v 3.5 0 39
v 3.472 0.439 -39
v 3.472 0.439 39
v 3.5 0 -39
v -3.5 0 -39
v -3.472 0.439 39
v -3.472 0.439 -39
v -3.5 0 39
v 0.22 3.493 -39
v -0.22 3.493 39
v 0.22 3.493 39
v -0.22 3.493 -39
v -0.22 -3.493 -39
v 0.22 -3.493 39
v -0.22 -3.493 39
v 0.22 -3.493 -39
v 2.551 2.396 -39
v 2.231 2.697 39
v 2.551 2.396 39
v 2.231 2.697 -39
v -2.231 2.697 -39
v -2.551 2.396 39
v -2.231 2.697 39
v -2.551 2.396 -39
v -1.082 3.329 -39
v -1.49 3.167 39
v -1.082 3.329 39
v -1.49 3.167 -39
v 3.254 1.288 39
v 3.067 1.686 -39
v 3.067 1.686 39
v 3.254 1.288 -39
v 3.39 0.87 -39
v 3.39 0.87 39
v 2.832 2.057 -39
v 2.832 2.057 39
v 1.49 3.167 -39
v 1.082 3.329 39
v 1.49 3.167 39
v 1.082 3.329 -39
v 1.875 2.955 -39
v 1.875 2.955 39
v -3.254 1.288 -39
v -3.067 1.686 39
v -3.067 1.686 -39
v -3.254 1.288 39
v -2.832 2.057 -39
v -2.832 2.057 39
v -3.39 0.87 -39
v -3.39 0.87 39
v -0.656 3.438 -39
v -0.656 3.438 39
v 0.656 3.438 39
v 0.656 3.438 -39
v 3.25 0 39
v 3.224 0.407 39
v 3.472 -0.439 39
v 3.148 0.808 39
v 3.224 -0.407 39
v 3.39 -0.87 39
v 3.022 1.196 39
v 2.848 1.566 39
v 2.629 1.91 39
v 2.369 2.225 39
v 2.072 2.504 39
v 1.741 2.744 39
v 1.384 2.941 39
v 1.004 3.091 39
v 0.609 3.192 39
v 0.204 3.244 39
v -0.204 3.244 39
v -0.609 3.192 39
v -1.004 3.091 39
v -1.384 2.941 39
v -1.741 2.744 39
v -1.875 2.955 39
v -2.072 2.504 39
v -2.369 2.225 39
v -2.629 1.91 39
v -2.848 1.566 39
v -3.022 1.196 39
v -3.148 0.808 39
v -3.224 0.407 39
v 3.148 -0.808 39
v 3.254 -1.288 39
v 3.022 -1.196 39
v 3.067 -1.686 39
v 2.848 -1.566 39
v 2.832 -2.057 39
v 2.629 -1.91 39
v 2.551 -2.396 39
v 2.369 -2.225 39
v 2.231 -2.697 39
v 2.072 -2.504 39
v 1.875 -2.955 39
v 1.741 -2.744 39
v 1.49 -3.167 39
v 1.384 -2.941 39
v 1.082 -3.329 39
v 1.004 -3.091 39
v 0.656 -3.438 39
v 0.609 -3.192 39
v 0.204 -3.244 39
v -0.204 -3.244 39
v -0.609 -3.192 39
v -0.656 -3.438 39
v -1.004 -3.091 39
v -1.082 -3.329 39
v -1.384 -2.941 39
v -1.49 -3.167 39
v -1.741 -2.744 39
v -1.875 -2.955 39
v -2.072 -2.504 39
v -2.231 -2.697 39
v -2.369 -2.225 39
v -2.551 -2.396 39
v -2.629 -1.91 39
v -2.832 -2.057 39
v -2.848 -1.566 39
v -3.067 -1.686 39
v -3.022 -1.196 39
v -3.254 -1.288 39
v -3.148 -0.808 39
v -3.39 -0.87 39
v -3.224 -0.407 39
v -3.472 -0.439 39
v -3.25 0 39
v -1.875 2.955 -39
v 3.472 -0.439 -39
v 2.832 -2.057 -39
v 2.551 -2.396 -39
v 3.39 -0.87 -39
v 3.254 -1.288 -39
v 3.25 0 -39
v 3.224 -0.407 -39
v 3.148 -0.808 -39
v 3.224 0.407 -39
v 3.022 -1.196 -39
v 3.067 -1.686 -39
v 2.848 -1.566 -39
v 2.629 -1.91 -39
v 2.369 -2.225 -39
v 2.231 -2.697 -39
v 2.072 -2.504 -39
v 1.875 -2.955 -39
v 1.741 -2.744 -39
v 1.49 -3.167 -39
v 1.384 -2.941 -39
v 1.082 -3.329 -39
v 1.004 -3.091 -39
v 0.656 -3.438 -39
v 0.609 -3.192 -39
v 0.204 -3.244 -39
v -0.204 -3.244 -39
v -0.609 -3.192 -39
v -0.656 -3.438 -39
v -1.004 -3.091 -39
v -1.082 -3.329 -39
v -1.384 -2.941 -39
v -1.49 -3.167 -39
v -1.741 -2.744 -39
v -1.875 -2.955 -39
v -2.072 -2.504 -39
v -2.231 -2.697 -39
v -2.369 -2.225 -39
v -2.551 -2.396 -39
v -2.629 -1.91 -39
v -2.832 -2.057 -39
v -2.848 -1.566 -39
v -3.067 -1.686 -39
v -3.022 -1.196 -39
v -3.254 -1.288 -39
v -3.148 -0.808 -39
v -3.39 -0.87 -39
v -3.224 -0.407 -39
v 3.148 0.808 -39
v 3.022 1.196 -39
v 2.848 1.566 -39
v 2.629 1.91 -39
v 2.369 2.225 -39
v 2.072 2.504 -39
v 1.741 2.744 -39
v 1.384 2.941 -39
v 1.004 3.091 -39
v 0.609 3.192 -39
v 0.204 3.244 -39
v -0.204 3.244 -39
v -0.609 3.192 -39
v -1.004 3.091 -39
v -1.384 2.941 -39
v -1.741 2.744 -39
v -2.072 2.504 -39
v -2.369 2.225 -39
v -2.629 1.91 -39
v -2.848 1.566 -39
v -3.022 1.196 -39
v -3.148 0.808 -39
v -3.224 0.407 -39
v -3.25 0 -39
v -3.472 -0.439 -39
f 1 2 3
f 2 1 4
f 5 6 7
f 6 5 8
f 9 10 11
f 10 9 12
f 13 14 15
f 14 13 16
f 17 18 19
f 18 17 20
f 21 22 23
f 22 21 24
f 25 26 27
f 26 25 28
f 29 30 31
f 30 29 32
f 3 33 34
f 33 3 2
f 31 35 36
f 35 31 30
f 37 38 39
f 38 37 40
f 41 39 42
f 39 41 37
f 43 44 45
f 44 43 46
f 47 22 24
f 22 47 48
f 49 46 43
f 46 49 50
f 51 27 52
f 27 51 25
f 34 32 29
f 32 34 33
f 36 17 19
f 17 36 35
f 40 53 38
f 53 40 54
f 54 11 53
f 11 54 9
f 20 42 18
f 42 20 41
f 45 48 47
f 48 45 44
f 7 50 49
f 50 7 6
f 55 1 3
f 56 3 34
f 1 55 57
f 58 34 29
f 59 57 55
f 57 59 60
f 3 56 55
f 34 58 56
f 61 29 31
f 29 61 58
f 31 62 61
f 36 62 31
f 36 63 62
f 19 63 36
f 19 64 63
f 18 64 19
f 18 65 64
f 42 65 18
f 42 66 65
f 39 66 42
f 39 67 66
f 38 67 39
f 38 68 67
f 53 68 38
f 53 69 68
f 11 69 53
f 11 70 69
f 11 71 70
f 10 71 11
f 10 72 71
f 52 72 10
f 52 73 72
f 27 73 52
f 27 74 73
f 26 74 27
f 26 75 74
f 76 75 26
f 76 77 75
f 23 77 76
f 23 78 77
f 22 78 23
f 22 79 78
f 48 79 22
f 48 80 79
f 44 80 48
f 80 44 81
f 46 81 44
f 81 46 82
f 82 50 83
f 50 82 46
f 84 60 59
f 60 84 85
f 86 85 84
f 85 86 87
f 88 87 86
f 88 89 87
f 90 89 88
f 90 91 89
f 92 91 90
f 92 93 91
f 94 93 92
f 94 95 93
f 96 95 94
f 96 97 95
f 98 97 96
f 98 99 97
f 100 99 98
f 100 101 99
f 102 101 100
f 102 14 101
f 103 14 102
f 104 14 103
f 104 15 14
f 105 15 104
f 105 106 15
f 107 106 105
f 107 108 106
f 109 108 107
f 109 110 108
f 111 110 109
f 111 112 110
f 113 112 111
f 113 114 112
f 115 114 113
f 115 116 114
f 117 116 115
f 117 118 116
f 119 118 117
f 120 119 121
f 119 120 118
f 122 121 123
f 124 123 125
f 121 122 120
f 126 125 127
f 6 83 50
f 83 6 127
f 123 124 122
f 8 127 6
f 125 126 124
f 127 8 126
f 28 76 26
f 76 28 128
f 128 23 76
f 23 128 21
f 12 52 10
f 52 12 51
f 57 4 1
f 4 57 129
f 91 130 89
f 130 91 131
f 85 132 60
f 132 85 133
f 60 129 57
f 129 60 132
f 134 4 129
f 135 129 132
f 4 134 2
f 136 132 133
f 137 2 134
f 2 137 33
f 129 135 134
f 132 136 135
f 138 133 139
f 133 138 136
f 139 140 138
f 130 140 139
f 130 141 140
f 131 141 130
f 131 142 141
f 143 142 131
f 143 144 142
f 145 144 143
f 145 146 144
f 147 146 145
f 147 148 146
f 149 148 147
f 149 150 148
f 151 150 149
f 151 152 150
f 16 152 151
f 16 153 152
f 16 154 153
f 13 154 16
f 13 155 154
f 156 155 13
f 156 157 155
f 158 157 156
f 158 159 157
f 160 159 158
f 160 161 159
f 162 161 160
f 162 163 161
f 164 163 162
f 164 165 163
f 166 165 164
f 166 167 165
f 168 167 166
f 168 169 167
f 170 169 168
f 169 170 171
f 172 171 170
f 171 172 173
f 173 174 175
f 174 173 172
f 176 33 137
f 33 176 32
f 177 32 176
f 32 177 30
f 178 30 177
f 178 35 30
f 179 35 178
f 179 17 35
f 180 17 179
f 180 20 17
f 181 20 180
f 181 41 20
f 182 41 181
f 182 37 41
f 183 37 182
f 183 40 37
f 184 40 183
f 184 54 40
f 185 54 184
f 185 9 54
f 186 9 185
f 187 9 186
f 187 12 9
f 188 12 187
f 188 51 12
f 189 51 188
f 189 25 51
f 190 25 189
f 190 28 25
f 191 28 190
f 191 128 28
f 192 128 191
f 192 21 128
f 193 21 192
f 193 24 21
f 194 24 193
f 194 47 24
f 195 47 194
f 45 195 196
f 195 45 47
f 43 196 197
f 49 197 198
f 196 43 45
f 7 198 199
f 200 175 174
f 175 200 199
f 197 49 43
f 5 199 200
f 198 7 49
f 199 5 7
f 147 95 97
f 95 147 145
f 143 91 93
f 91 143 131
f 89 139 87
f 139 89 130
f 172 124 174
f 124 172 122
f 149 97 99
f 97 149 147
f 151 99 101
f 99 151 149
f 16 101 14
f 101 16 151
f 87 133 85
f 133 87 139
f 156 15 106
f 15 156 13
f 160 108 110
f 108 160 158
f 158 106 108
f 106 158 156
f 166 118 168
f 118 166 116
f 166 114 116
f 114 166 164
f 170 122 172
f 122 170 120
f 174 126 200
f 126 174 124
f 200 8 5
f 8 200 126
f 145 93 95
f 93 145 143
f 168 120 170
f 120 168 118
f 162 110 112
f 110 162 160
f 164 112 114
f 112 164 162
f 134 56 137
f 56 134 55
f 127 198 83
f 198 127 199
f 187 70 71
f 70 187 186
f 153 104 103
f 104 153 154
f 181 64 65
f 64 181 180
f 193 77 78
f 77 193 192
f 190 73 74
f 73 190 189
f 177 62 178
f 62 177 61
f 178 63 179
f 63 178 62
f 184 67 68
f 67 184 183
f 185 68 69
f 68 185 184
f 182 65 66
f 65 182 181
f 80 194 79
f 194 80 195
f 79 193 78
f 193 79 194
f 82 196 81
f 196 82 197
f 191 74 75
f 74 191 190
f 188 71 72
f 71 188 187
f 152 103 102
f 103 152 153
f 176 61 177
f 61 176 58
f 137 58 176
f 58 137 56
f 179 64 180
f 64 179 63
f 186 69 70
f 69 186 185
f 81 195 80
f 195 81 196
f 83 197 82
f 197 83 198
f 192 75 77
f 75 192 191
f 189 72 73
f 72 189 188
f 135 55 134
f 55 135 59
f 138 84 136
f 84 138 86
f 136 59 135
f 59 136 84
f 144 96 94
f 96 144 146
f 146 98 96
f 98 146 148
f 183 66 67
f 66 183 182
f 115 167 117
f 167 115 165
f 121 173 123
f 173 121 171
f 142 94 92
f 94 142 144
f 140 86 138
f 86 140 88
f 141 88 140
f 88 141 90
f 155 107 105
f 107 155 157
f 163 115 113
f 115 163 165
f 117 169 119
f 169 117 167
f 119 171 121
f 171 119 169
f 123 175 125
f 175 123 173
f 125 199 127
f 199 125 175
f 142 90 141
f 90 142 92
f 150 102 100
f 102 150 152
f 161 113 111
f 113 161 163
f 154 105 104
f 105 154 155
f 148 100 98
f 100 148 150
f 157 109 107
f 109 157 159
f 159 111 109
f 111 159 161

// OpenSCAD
$fn = 50;


difference() {
	union() {
		translate(v = [0, 0, -39.0000000000]) {
			cylinder(h = 78, r = 3.5000000000);
		}
	}
	union() {
		translate(v = [0, 0, -100.0000000000]) {
			cylinder(h = 200, r = 3.2500000000);
		}
	}
}
